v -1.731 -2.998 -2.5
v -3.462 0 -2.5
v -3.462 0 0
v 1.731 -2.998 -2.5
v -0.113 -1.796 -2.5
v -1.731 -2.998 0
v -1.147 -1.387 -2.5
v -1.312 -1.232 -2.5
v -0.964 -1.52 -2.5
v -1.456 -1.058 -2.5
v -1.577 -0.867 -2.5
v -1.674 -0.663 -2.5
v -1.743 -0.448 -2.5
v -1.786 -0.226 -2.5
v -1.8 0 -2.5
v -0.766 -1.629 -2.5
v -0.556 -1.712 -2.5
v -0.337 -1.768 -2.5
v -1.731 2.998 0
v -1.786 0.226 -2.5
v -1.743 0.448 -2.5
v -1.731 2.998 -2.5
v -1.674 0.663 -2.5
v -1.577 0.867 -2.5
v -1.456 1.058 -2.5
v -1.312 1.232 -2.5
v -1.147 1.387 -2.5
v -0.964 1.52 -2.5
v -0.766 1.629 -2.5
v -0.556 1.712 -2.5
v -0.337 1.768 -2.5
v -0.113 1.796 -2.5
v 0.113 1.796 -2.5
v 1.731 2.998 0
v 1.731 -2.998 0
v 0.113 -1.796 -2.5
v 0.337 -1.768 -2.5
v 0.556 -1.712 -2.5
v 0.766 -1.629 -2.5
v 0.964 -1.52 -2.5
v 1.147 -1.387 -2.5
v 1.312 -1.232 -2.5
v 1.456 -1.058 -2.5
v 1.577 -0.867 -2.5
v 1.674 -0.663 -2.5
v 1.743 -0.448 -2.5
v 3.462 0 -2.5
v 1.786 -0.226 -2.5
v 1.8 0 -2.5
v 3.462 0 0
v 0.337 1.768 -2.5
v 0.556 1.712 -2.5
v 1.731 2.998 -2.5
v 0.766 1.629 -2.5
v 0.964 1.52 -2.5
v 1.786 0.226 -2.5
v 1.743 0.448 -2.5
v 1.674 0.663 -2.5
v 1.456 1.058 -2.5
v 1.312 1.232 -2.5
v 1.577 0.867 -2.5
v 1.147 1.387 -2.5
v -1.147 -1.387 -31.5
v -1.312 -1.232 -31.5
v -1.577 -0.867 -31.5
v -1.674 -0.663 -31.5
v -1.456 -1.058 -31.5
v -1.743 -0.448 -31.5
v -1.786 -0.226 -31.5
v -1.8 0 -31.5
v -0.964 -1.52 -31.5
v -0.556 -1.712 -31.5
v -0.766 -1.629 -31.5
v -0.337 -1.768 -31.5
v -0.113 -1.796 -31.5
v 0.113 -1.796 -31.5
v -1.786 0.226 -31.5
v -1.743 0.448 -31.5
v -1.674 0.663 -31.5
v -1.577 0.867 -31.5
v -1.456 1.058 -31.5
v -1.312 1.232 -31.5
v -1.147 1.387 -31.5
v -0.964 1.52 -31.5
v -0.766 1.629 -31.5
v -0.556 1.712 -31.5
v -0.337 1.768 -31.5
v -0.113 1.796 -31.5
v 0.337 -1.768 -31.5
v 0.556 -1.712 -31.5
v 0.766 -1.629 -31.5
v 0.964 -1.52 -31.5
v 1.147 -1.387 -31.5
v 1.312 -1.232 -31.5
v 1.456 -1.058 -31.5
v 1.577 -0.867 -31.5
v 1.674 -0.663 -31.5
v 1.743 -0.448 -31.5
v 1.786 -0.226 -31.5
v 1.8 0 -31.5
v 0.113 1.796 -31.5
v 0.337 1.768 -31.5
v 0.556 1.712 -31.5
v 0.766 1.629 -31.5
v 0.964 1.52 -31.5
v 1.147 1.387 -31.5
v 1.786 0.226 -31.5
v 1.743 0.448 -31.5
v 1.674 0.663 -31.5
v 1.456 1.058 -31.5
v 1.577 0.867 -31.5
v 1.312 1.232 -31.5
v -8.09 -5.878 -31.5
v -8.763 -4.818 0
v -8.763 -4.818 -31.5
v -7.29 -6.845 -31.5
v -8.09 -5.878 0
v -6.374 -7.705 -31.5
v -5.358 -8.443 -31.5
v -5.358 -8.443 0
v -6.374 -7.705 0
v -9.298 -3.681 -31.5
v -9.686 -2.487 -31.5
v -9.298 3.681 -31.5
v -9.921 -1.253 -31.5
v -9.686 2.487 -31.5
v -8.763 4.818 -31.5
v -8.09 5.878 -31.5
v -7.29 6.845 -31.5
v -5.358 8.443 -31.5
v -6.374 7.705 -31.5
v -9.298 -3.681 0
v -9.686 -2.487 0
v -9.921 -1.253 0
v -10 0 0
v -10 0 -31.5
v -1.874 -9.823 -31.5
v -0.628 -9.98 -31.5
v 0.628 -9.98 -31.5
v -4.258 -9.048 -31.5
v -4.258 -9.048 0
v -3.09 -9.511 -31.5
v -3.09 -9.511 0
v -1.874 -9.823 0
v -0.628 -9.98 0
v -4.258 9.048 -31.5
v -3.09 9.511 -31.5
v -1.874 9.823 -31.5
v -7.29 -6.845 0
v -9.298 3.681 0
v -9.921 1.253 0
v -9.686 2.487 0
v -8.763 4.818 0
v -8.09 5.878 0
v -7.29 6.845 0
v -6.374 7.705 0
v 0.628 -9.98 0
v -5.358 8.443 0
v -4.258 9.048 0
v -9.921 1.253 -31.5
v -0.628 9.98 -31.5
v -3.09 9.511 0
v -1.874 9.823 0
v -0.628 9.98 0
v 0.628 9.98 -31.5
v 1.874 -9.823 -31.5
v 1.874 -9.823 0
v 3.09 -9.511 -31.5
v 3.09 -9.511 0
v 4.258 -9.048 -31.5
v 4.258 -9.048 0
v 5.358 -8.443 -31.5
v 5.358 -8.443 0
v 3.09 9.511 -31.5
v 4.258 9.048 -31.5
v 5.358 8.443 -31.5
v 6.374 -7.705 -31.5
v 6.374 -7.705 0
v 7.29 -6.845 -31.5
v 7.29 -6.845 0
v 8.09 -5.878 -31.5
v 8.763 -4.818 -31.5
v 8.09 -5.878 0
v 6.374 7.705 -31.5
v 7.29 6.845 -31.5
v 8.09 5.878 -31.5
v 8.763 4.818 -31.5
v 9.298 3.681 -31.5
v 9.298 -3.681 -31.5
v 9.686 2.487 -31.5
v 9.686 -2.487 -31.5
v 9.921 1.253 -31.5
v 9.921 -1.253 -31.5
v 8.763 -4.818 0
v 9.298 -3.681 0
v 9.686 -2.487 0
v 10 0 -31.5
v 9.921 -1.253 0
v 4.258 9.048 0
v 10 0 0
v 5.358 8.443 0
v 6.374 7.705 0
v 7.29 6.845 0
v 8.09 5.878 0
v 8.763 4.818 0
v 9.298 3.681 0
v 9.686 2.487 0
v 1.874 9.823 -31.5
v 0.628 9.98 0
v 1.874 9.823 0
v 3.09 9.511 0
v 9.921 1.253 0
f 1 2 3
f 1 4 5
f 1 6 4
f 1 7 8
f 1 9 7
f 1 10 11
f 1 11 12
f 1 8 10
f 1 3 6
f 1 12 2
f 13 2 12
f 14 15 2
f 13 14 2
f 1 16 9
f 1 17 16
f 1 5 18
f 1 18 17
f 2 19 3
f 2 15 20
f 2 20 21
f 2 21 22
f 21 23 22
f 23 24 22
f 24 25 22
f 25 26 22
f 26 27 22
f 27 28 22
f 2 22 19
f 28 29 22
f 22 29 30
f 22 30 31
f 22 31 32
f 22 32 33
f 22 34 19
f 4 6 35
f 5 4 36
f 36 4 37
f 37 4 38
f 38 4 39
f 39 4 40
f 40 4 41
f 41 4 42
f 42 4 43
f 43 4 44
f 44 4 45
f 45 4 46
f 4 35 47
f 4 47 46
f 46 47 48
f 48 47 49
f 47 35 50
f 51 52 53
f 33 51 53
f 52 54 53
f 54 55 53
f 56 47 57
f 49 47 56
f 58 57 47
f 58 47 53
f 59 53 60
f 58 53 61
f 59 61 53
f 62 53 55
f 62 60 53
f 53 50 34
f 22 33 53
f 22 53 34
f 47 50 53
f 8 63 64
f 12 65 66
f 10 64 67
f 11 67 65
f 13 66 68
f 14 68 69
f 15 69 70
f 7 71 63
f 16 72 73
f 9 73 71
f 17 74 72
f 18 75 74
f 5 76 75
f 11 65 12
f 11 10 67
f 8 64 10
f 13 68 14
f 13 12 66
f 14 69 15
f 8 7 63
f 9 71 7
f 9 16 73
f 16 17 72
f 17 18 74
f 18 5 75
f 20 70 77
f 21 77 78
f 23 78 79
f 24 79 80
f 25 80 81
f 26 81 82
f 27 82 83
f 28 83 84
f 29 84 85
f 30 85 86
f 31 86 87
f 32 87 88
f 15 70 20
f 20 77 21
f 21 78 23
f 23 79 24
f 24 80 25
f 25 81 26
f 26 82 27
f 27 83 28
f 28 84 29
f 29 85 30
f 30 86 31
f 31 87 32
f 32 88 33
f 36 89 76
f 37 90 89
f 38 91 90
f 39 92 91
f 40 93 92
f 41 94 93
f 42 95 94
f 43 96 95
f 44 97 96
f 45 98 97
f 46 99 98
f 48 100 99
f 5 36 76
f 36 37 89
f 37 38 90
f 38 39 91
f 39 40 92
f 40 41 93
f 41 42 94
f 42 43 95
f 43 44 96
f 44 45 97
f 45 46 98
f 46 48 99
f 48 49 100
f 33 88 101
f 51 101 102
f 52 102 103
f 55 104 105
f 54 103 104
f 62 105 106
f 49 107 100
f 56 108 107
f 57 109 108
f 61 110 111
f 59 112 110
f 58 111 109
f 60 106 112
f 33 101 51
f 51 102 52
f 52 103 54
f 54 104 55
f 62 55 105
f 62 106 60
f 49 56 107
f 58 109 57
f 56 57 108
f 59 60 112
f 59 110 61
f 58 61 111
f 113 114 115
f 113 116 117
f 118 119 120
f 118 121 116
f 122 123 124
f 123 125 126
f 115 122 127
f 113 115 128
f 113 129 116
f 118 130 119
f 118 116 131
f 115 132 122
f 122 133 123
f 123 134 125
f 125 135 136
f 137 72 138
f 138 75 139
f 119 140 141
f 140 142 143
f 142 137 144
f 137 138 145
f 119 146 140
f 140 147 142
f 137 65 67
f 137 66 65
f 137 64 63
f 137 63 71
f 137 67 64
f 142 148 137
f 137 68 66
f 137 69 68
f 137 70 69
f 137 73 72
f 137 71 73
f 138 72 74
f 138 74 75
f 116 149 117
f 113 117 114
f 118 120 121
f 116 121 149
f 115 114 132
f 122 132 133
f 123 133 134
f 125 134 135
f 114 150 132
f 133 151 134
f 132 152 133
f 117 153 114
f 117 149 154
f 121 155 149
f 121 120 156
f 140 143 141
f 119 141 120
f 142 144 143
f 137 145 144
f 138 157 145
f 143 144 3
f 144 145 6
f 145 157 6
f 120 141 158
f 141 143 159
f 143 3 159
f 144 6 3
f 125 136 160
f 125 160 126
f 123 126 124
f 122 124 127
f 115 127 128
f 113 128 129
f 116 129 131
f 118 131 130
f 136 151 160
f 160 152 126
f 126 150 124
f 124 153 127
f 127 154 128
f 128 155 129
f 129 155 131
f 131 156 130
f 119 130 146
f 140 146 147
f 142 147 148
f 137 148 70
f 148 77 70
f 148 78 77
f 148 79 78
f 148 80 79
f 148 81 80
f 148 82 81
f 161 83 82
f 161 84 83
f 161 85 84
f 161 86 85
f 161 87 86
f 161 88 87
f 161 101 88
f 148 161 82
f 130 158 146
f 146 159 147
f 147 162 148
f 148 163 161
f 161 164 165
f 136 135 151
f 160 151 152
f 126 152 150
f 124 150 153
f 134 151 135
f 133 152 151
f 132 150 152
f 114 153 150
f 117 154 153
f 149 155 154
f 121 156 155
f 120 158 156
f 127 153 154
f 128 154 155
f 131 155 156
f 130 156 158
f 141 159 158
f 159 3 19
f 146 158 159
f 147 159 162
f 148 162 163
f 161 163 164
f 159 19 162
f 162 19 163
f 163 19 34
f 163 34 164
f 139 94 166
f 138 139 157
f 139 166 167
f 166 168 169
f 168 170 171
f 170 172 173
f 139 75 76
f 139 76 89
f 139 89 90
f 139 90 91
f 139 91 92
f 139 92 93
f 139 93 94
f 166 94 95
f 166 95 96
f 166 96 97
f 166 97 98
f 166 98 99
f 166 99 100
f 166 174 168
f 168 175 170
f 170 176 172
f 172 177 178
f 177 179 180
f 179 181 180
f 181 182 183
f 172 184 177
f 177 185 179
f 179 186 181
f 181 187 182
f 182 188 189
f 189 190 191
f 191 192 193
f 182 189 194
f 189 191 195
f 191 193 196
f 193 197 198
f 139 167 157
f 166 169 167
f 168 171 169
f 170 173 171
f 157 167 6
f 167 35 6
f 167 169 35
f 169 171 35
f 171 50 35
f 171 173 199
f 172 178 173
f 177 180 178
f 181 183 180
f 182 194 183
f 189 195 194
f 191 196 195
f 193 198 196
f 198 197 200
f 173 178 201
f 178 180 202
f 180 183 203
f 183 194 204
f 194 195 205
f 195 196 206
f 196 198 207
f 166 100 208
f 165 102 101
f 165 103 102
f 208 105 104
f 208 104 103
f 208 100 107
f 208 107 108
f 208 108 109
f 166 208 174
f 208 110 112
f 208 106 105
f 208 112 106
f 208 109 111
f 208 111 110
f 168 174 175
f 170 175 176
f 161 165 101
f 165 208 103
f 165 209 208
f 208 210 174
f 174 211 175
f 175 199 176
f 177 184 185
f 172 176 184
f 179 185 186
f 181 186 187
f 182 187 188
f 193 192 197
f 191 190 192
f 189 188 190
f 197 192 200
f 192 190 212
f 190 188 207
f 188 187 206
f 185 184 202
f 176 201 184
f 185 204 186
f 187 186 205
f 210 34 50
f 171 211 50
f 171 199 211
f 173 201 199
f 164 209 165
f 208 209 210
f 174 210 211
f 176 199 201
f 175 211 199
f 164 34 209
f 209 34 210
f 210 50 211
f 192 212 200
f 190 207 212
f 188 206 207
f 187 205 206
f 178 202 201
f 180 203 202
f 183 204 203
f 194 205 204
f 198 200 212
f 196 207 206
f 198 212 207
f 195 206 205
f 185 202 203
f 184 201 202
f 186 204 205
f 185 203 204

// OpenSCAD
$fn = 50;


difference() {
	union() {
		translate(v = [0, 0, -31.5000000000]) {
			cylinder(h = 31.5000000000, r = 10.0000000000);
		}
	}
	union() {
		translate(v = [0, 0, 0]) {
			rotate(a = [0, 0, 0]) {
				difference() {
					union() {
						translate(v = [0, 0, -2.5000000000]) {
							linear_extrude(height = 2.5000000000) {
								polygon(points = [[3.4620000000, 0.0000000000], [1.7310000000, 2.9981799479], [-1.7310000000, 2.9981799479], [-3.4620000000, 0.0000000000], [-1.7310000000, -2.9981799479], [1.7310000000, -2.9981799479]]);
							}
						}
					}
					union();
				}
			}
		}
		#translate(v = [0, 0, -100.0000000000]) {
			cylinder(h = 200, r = 1.8000000000);
		}
	}
}
